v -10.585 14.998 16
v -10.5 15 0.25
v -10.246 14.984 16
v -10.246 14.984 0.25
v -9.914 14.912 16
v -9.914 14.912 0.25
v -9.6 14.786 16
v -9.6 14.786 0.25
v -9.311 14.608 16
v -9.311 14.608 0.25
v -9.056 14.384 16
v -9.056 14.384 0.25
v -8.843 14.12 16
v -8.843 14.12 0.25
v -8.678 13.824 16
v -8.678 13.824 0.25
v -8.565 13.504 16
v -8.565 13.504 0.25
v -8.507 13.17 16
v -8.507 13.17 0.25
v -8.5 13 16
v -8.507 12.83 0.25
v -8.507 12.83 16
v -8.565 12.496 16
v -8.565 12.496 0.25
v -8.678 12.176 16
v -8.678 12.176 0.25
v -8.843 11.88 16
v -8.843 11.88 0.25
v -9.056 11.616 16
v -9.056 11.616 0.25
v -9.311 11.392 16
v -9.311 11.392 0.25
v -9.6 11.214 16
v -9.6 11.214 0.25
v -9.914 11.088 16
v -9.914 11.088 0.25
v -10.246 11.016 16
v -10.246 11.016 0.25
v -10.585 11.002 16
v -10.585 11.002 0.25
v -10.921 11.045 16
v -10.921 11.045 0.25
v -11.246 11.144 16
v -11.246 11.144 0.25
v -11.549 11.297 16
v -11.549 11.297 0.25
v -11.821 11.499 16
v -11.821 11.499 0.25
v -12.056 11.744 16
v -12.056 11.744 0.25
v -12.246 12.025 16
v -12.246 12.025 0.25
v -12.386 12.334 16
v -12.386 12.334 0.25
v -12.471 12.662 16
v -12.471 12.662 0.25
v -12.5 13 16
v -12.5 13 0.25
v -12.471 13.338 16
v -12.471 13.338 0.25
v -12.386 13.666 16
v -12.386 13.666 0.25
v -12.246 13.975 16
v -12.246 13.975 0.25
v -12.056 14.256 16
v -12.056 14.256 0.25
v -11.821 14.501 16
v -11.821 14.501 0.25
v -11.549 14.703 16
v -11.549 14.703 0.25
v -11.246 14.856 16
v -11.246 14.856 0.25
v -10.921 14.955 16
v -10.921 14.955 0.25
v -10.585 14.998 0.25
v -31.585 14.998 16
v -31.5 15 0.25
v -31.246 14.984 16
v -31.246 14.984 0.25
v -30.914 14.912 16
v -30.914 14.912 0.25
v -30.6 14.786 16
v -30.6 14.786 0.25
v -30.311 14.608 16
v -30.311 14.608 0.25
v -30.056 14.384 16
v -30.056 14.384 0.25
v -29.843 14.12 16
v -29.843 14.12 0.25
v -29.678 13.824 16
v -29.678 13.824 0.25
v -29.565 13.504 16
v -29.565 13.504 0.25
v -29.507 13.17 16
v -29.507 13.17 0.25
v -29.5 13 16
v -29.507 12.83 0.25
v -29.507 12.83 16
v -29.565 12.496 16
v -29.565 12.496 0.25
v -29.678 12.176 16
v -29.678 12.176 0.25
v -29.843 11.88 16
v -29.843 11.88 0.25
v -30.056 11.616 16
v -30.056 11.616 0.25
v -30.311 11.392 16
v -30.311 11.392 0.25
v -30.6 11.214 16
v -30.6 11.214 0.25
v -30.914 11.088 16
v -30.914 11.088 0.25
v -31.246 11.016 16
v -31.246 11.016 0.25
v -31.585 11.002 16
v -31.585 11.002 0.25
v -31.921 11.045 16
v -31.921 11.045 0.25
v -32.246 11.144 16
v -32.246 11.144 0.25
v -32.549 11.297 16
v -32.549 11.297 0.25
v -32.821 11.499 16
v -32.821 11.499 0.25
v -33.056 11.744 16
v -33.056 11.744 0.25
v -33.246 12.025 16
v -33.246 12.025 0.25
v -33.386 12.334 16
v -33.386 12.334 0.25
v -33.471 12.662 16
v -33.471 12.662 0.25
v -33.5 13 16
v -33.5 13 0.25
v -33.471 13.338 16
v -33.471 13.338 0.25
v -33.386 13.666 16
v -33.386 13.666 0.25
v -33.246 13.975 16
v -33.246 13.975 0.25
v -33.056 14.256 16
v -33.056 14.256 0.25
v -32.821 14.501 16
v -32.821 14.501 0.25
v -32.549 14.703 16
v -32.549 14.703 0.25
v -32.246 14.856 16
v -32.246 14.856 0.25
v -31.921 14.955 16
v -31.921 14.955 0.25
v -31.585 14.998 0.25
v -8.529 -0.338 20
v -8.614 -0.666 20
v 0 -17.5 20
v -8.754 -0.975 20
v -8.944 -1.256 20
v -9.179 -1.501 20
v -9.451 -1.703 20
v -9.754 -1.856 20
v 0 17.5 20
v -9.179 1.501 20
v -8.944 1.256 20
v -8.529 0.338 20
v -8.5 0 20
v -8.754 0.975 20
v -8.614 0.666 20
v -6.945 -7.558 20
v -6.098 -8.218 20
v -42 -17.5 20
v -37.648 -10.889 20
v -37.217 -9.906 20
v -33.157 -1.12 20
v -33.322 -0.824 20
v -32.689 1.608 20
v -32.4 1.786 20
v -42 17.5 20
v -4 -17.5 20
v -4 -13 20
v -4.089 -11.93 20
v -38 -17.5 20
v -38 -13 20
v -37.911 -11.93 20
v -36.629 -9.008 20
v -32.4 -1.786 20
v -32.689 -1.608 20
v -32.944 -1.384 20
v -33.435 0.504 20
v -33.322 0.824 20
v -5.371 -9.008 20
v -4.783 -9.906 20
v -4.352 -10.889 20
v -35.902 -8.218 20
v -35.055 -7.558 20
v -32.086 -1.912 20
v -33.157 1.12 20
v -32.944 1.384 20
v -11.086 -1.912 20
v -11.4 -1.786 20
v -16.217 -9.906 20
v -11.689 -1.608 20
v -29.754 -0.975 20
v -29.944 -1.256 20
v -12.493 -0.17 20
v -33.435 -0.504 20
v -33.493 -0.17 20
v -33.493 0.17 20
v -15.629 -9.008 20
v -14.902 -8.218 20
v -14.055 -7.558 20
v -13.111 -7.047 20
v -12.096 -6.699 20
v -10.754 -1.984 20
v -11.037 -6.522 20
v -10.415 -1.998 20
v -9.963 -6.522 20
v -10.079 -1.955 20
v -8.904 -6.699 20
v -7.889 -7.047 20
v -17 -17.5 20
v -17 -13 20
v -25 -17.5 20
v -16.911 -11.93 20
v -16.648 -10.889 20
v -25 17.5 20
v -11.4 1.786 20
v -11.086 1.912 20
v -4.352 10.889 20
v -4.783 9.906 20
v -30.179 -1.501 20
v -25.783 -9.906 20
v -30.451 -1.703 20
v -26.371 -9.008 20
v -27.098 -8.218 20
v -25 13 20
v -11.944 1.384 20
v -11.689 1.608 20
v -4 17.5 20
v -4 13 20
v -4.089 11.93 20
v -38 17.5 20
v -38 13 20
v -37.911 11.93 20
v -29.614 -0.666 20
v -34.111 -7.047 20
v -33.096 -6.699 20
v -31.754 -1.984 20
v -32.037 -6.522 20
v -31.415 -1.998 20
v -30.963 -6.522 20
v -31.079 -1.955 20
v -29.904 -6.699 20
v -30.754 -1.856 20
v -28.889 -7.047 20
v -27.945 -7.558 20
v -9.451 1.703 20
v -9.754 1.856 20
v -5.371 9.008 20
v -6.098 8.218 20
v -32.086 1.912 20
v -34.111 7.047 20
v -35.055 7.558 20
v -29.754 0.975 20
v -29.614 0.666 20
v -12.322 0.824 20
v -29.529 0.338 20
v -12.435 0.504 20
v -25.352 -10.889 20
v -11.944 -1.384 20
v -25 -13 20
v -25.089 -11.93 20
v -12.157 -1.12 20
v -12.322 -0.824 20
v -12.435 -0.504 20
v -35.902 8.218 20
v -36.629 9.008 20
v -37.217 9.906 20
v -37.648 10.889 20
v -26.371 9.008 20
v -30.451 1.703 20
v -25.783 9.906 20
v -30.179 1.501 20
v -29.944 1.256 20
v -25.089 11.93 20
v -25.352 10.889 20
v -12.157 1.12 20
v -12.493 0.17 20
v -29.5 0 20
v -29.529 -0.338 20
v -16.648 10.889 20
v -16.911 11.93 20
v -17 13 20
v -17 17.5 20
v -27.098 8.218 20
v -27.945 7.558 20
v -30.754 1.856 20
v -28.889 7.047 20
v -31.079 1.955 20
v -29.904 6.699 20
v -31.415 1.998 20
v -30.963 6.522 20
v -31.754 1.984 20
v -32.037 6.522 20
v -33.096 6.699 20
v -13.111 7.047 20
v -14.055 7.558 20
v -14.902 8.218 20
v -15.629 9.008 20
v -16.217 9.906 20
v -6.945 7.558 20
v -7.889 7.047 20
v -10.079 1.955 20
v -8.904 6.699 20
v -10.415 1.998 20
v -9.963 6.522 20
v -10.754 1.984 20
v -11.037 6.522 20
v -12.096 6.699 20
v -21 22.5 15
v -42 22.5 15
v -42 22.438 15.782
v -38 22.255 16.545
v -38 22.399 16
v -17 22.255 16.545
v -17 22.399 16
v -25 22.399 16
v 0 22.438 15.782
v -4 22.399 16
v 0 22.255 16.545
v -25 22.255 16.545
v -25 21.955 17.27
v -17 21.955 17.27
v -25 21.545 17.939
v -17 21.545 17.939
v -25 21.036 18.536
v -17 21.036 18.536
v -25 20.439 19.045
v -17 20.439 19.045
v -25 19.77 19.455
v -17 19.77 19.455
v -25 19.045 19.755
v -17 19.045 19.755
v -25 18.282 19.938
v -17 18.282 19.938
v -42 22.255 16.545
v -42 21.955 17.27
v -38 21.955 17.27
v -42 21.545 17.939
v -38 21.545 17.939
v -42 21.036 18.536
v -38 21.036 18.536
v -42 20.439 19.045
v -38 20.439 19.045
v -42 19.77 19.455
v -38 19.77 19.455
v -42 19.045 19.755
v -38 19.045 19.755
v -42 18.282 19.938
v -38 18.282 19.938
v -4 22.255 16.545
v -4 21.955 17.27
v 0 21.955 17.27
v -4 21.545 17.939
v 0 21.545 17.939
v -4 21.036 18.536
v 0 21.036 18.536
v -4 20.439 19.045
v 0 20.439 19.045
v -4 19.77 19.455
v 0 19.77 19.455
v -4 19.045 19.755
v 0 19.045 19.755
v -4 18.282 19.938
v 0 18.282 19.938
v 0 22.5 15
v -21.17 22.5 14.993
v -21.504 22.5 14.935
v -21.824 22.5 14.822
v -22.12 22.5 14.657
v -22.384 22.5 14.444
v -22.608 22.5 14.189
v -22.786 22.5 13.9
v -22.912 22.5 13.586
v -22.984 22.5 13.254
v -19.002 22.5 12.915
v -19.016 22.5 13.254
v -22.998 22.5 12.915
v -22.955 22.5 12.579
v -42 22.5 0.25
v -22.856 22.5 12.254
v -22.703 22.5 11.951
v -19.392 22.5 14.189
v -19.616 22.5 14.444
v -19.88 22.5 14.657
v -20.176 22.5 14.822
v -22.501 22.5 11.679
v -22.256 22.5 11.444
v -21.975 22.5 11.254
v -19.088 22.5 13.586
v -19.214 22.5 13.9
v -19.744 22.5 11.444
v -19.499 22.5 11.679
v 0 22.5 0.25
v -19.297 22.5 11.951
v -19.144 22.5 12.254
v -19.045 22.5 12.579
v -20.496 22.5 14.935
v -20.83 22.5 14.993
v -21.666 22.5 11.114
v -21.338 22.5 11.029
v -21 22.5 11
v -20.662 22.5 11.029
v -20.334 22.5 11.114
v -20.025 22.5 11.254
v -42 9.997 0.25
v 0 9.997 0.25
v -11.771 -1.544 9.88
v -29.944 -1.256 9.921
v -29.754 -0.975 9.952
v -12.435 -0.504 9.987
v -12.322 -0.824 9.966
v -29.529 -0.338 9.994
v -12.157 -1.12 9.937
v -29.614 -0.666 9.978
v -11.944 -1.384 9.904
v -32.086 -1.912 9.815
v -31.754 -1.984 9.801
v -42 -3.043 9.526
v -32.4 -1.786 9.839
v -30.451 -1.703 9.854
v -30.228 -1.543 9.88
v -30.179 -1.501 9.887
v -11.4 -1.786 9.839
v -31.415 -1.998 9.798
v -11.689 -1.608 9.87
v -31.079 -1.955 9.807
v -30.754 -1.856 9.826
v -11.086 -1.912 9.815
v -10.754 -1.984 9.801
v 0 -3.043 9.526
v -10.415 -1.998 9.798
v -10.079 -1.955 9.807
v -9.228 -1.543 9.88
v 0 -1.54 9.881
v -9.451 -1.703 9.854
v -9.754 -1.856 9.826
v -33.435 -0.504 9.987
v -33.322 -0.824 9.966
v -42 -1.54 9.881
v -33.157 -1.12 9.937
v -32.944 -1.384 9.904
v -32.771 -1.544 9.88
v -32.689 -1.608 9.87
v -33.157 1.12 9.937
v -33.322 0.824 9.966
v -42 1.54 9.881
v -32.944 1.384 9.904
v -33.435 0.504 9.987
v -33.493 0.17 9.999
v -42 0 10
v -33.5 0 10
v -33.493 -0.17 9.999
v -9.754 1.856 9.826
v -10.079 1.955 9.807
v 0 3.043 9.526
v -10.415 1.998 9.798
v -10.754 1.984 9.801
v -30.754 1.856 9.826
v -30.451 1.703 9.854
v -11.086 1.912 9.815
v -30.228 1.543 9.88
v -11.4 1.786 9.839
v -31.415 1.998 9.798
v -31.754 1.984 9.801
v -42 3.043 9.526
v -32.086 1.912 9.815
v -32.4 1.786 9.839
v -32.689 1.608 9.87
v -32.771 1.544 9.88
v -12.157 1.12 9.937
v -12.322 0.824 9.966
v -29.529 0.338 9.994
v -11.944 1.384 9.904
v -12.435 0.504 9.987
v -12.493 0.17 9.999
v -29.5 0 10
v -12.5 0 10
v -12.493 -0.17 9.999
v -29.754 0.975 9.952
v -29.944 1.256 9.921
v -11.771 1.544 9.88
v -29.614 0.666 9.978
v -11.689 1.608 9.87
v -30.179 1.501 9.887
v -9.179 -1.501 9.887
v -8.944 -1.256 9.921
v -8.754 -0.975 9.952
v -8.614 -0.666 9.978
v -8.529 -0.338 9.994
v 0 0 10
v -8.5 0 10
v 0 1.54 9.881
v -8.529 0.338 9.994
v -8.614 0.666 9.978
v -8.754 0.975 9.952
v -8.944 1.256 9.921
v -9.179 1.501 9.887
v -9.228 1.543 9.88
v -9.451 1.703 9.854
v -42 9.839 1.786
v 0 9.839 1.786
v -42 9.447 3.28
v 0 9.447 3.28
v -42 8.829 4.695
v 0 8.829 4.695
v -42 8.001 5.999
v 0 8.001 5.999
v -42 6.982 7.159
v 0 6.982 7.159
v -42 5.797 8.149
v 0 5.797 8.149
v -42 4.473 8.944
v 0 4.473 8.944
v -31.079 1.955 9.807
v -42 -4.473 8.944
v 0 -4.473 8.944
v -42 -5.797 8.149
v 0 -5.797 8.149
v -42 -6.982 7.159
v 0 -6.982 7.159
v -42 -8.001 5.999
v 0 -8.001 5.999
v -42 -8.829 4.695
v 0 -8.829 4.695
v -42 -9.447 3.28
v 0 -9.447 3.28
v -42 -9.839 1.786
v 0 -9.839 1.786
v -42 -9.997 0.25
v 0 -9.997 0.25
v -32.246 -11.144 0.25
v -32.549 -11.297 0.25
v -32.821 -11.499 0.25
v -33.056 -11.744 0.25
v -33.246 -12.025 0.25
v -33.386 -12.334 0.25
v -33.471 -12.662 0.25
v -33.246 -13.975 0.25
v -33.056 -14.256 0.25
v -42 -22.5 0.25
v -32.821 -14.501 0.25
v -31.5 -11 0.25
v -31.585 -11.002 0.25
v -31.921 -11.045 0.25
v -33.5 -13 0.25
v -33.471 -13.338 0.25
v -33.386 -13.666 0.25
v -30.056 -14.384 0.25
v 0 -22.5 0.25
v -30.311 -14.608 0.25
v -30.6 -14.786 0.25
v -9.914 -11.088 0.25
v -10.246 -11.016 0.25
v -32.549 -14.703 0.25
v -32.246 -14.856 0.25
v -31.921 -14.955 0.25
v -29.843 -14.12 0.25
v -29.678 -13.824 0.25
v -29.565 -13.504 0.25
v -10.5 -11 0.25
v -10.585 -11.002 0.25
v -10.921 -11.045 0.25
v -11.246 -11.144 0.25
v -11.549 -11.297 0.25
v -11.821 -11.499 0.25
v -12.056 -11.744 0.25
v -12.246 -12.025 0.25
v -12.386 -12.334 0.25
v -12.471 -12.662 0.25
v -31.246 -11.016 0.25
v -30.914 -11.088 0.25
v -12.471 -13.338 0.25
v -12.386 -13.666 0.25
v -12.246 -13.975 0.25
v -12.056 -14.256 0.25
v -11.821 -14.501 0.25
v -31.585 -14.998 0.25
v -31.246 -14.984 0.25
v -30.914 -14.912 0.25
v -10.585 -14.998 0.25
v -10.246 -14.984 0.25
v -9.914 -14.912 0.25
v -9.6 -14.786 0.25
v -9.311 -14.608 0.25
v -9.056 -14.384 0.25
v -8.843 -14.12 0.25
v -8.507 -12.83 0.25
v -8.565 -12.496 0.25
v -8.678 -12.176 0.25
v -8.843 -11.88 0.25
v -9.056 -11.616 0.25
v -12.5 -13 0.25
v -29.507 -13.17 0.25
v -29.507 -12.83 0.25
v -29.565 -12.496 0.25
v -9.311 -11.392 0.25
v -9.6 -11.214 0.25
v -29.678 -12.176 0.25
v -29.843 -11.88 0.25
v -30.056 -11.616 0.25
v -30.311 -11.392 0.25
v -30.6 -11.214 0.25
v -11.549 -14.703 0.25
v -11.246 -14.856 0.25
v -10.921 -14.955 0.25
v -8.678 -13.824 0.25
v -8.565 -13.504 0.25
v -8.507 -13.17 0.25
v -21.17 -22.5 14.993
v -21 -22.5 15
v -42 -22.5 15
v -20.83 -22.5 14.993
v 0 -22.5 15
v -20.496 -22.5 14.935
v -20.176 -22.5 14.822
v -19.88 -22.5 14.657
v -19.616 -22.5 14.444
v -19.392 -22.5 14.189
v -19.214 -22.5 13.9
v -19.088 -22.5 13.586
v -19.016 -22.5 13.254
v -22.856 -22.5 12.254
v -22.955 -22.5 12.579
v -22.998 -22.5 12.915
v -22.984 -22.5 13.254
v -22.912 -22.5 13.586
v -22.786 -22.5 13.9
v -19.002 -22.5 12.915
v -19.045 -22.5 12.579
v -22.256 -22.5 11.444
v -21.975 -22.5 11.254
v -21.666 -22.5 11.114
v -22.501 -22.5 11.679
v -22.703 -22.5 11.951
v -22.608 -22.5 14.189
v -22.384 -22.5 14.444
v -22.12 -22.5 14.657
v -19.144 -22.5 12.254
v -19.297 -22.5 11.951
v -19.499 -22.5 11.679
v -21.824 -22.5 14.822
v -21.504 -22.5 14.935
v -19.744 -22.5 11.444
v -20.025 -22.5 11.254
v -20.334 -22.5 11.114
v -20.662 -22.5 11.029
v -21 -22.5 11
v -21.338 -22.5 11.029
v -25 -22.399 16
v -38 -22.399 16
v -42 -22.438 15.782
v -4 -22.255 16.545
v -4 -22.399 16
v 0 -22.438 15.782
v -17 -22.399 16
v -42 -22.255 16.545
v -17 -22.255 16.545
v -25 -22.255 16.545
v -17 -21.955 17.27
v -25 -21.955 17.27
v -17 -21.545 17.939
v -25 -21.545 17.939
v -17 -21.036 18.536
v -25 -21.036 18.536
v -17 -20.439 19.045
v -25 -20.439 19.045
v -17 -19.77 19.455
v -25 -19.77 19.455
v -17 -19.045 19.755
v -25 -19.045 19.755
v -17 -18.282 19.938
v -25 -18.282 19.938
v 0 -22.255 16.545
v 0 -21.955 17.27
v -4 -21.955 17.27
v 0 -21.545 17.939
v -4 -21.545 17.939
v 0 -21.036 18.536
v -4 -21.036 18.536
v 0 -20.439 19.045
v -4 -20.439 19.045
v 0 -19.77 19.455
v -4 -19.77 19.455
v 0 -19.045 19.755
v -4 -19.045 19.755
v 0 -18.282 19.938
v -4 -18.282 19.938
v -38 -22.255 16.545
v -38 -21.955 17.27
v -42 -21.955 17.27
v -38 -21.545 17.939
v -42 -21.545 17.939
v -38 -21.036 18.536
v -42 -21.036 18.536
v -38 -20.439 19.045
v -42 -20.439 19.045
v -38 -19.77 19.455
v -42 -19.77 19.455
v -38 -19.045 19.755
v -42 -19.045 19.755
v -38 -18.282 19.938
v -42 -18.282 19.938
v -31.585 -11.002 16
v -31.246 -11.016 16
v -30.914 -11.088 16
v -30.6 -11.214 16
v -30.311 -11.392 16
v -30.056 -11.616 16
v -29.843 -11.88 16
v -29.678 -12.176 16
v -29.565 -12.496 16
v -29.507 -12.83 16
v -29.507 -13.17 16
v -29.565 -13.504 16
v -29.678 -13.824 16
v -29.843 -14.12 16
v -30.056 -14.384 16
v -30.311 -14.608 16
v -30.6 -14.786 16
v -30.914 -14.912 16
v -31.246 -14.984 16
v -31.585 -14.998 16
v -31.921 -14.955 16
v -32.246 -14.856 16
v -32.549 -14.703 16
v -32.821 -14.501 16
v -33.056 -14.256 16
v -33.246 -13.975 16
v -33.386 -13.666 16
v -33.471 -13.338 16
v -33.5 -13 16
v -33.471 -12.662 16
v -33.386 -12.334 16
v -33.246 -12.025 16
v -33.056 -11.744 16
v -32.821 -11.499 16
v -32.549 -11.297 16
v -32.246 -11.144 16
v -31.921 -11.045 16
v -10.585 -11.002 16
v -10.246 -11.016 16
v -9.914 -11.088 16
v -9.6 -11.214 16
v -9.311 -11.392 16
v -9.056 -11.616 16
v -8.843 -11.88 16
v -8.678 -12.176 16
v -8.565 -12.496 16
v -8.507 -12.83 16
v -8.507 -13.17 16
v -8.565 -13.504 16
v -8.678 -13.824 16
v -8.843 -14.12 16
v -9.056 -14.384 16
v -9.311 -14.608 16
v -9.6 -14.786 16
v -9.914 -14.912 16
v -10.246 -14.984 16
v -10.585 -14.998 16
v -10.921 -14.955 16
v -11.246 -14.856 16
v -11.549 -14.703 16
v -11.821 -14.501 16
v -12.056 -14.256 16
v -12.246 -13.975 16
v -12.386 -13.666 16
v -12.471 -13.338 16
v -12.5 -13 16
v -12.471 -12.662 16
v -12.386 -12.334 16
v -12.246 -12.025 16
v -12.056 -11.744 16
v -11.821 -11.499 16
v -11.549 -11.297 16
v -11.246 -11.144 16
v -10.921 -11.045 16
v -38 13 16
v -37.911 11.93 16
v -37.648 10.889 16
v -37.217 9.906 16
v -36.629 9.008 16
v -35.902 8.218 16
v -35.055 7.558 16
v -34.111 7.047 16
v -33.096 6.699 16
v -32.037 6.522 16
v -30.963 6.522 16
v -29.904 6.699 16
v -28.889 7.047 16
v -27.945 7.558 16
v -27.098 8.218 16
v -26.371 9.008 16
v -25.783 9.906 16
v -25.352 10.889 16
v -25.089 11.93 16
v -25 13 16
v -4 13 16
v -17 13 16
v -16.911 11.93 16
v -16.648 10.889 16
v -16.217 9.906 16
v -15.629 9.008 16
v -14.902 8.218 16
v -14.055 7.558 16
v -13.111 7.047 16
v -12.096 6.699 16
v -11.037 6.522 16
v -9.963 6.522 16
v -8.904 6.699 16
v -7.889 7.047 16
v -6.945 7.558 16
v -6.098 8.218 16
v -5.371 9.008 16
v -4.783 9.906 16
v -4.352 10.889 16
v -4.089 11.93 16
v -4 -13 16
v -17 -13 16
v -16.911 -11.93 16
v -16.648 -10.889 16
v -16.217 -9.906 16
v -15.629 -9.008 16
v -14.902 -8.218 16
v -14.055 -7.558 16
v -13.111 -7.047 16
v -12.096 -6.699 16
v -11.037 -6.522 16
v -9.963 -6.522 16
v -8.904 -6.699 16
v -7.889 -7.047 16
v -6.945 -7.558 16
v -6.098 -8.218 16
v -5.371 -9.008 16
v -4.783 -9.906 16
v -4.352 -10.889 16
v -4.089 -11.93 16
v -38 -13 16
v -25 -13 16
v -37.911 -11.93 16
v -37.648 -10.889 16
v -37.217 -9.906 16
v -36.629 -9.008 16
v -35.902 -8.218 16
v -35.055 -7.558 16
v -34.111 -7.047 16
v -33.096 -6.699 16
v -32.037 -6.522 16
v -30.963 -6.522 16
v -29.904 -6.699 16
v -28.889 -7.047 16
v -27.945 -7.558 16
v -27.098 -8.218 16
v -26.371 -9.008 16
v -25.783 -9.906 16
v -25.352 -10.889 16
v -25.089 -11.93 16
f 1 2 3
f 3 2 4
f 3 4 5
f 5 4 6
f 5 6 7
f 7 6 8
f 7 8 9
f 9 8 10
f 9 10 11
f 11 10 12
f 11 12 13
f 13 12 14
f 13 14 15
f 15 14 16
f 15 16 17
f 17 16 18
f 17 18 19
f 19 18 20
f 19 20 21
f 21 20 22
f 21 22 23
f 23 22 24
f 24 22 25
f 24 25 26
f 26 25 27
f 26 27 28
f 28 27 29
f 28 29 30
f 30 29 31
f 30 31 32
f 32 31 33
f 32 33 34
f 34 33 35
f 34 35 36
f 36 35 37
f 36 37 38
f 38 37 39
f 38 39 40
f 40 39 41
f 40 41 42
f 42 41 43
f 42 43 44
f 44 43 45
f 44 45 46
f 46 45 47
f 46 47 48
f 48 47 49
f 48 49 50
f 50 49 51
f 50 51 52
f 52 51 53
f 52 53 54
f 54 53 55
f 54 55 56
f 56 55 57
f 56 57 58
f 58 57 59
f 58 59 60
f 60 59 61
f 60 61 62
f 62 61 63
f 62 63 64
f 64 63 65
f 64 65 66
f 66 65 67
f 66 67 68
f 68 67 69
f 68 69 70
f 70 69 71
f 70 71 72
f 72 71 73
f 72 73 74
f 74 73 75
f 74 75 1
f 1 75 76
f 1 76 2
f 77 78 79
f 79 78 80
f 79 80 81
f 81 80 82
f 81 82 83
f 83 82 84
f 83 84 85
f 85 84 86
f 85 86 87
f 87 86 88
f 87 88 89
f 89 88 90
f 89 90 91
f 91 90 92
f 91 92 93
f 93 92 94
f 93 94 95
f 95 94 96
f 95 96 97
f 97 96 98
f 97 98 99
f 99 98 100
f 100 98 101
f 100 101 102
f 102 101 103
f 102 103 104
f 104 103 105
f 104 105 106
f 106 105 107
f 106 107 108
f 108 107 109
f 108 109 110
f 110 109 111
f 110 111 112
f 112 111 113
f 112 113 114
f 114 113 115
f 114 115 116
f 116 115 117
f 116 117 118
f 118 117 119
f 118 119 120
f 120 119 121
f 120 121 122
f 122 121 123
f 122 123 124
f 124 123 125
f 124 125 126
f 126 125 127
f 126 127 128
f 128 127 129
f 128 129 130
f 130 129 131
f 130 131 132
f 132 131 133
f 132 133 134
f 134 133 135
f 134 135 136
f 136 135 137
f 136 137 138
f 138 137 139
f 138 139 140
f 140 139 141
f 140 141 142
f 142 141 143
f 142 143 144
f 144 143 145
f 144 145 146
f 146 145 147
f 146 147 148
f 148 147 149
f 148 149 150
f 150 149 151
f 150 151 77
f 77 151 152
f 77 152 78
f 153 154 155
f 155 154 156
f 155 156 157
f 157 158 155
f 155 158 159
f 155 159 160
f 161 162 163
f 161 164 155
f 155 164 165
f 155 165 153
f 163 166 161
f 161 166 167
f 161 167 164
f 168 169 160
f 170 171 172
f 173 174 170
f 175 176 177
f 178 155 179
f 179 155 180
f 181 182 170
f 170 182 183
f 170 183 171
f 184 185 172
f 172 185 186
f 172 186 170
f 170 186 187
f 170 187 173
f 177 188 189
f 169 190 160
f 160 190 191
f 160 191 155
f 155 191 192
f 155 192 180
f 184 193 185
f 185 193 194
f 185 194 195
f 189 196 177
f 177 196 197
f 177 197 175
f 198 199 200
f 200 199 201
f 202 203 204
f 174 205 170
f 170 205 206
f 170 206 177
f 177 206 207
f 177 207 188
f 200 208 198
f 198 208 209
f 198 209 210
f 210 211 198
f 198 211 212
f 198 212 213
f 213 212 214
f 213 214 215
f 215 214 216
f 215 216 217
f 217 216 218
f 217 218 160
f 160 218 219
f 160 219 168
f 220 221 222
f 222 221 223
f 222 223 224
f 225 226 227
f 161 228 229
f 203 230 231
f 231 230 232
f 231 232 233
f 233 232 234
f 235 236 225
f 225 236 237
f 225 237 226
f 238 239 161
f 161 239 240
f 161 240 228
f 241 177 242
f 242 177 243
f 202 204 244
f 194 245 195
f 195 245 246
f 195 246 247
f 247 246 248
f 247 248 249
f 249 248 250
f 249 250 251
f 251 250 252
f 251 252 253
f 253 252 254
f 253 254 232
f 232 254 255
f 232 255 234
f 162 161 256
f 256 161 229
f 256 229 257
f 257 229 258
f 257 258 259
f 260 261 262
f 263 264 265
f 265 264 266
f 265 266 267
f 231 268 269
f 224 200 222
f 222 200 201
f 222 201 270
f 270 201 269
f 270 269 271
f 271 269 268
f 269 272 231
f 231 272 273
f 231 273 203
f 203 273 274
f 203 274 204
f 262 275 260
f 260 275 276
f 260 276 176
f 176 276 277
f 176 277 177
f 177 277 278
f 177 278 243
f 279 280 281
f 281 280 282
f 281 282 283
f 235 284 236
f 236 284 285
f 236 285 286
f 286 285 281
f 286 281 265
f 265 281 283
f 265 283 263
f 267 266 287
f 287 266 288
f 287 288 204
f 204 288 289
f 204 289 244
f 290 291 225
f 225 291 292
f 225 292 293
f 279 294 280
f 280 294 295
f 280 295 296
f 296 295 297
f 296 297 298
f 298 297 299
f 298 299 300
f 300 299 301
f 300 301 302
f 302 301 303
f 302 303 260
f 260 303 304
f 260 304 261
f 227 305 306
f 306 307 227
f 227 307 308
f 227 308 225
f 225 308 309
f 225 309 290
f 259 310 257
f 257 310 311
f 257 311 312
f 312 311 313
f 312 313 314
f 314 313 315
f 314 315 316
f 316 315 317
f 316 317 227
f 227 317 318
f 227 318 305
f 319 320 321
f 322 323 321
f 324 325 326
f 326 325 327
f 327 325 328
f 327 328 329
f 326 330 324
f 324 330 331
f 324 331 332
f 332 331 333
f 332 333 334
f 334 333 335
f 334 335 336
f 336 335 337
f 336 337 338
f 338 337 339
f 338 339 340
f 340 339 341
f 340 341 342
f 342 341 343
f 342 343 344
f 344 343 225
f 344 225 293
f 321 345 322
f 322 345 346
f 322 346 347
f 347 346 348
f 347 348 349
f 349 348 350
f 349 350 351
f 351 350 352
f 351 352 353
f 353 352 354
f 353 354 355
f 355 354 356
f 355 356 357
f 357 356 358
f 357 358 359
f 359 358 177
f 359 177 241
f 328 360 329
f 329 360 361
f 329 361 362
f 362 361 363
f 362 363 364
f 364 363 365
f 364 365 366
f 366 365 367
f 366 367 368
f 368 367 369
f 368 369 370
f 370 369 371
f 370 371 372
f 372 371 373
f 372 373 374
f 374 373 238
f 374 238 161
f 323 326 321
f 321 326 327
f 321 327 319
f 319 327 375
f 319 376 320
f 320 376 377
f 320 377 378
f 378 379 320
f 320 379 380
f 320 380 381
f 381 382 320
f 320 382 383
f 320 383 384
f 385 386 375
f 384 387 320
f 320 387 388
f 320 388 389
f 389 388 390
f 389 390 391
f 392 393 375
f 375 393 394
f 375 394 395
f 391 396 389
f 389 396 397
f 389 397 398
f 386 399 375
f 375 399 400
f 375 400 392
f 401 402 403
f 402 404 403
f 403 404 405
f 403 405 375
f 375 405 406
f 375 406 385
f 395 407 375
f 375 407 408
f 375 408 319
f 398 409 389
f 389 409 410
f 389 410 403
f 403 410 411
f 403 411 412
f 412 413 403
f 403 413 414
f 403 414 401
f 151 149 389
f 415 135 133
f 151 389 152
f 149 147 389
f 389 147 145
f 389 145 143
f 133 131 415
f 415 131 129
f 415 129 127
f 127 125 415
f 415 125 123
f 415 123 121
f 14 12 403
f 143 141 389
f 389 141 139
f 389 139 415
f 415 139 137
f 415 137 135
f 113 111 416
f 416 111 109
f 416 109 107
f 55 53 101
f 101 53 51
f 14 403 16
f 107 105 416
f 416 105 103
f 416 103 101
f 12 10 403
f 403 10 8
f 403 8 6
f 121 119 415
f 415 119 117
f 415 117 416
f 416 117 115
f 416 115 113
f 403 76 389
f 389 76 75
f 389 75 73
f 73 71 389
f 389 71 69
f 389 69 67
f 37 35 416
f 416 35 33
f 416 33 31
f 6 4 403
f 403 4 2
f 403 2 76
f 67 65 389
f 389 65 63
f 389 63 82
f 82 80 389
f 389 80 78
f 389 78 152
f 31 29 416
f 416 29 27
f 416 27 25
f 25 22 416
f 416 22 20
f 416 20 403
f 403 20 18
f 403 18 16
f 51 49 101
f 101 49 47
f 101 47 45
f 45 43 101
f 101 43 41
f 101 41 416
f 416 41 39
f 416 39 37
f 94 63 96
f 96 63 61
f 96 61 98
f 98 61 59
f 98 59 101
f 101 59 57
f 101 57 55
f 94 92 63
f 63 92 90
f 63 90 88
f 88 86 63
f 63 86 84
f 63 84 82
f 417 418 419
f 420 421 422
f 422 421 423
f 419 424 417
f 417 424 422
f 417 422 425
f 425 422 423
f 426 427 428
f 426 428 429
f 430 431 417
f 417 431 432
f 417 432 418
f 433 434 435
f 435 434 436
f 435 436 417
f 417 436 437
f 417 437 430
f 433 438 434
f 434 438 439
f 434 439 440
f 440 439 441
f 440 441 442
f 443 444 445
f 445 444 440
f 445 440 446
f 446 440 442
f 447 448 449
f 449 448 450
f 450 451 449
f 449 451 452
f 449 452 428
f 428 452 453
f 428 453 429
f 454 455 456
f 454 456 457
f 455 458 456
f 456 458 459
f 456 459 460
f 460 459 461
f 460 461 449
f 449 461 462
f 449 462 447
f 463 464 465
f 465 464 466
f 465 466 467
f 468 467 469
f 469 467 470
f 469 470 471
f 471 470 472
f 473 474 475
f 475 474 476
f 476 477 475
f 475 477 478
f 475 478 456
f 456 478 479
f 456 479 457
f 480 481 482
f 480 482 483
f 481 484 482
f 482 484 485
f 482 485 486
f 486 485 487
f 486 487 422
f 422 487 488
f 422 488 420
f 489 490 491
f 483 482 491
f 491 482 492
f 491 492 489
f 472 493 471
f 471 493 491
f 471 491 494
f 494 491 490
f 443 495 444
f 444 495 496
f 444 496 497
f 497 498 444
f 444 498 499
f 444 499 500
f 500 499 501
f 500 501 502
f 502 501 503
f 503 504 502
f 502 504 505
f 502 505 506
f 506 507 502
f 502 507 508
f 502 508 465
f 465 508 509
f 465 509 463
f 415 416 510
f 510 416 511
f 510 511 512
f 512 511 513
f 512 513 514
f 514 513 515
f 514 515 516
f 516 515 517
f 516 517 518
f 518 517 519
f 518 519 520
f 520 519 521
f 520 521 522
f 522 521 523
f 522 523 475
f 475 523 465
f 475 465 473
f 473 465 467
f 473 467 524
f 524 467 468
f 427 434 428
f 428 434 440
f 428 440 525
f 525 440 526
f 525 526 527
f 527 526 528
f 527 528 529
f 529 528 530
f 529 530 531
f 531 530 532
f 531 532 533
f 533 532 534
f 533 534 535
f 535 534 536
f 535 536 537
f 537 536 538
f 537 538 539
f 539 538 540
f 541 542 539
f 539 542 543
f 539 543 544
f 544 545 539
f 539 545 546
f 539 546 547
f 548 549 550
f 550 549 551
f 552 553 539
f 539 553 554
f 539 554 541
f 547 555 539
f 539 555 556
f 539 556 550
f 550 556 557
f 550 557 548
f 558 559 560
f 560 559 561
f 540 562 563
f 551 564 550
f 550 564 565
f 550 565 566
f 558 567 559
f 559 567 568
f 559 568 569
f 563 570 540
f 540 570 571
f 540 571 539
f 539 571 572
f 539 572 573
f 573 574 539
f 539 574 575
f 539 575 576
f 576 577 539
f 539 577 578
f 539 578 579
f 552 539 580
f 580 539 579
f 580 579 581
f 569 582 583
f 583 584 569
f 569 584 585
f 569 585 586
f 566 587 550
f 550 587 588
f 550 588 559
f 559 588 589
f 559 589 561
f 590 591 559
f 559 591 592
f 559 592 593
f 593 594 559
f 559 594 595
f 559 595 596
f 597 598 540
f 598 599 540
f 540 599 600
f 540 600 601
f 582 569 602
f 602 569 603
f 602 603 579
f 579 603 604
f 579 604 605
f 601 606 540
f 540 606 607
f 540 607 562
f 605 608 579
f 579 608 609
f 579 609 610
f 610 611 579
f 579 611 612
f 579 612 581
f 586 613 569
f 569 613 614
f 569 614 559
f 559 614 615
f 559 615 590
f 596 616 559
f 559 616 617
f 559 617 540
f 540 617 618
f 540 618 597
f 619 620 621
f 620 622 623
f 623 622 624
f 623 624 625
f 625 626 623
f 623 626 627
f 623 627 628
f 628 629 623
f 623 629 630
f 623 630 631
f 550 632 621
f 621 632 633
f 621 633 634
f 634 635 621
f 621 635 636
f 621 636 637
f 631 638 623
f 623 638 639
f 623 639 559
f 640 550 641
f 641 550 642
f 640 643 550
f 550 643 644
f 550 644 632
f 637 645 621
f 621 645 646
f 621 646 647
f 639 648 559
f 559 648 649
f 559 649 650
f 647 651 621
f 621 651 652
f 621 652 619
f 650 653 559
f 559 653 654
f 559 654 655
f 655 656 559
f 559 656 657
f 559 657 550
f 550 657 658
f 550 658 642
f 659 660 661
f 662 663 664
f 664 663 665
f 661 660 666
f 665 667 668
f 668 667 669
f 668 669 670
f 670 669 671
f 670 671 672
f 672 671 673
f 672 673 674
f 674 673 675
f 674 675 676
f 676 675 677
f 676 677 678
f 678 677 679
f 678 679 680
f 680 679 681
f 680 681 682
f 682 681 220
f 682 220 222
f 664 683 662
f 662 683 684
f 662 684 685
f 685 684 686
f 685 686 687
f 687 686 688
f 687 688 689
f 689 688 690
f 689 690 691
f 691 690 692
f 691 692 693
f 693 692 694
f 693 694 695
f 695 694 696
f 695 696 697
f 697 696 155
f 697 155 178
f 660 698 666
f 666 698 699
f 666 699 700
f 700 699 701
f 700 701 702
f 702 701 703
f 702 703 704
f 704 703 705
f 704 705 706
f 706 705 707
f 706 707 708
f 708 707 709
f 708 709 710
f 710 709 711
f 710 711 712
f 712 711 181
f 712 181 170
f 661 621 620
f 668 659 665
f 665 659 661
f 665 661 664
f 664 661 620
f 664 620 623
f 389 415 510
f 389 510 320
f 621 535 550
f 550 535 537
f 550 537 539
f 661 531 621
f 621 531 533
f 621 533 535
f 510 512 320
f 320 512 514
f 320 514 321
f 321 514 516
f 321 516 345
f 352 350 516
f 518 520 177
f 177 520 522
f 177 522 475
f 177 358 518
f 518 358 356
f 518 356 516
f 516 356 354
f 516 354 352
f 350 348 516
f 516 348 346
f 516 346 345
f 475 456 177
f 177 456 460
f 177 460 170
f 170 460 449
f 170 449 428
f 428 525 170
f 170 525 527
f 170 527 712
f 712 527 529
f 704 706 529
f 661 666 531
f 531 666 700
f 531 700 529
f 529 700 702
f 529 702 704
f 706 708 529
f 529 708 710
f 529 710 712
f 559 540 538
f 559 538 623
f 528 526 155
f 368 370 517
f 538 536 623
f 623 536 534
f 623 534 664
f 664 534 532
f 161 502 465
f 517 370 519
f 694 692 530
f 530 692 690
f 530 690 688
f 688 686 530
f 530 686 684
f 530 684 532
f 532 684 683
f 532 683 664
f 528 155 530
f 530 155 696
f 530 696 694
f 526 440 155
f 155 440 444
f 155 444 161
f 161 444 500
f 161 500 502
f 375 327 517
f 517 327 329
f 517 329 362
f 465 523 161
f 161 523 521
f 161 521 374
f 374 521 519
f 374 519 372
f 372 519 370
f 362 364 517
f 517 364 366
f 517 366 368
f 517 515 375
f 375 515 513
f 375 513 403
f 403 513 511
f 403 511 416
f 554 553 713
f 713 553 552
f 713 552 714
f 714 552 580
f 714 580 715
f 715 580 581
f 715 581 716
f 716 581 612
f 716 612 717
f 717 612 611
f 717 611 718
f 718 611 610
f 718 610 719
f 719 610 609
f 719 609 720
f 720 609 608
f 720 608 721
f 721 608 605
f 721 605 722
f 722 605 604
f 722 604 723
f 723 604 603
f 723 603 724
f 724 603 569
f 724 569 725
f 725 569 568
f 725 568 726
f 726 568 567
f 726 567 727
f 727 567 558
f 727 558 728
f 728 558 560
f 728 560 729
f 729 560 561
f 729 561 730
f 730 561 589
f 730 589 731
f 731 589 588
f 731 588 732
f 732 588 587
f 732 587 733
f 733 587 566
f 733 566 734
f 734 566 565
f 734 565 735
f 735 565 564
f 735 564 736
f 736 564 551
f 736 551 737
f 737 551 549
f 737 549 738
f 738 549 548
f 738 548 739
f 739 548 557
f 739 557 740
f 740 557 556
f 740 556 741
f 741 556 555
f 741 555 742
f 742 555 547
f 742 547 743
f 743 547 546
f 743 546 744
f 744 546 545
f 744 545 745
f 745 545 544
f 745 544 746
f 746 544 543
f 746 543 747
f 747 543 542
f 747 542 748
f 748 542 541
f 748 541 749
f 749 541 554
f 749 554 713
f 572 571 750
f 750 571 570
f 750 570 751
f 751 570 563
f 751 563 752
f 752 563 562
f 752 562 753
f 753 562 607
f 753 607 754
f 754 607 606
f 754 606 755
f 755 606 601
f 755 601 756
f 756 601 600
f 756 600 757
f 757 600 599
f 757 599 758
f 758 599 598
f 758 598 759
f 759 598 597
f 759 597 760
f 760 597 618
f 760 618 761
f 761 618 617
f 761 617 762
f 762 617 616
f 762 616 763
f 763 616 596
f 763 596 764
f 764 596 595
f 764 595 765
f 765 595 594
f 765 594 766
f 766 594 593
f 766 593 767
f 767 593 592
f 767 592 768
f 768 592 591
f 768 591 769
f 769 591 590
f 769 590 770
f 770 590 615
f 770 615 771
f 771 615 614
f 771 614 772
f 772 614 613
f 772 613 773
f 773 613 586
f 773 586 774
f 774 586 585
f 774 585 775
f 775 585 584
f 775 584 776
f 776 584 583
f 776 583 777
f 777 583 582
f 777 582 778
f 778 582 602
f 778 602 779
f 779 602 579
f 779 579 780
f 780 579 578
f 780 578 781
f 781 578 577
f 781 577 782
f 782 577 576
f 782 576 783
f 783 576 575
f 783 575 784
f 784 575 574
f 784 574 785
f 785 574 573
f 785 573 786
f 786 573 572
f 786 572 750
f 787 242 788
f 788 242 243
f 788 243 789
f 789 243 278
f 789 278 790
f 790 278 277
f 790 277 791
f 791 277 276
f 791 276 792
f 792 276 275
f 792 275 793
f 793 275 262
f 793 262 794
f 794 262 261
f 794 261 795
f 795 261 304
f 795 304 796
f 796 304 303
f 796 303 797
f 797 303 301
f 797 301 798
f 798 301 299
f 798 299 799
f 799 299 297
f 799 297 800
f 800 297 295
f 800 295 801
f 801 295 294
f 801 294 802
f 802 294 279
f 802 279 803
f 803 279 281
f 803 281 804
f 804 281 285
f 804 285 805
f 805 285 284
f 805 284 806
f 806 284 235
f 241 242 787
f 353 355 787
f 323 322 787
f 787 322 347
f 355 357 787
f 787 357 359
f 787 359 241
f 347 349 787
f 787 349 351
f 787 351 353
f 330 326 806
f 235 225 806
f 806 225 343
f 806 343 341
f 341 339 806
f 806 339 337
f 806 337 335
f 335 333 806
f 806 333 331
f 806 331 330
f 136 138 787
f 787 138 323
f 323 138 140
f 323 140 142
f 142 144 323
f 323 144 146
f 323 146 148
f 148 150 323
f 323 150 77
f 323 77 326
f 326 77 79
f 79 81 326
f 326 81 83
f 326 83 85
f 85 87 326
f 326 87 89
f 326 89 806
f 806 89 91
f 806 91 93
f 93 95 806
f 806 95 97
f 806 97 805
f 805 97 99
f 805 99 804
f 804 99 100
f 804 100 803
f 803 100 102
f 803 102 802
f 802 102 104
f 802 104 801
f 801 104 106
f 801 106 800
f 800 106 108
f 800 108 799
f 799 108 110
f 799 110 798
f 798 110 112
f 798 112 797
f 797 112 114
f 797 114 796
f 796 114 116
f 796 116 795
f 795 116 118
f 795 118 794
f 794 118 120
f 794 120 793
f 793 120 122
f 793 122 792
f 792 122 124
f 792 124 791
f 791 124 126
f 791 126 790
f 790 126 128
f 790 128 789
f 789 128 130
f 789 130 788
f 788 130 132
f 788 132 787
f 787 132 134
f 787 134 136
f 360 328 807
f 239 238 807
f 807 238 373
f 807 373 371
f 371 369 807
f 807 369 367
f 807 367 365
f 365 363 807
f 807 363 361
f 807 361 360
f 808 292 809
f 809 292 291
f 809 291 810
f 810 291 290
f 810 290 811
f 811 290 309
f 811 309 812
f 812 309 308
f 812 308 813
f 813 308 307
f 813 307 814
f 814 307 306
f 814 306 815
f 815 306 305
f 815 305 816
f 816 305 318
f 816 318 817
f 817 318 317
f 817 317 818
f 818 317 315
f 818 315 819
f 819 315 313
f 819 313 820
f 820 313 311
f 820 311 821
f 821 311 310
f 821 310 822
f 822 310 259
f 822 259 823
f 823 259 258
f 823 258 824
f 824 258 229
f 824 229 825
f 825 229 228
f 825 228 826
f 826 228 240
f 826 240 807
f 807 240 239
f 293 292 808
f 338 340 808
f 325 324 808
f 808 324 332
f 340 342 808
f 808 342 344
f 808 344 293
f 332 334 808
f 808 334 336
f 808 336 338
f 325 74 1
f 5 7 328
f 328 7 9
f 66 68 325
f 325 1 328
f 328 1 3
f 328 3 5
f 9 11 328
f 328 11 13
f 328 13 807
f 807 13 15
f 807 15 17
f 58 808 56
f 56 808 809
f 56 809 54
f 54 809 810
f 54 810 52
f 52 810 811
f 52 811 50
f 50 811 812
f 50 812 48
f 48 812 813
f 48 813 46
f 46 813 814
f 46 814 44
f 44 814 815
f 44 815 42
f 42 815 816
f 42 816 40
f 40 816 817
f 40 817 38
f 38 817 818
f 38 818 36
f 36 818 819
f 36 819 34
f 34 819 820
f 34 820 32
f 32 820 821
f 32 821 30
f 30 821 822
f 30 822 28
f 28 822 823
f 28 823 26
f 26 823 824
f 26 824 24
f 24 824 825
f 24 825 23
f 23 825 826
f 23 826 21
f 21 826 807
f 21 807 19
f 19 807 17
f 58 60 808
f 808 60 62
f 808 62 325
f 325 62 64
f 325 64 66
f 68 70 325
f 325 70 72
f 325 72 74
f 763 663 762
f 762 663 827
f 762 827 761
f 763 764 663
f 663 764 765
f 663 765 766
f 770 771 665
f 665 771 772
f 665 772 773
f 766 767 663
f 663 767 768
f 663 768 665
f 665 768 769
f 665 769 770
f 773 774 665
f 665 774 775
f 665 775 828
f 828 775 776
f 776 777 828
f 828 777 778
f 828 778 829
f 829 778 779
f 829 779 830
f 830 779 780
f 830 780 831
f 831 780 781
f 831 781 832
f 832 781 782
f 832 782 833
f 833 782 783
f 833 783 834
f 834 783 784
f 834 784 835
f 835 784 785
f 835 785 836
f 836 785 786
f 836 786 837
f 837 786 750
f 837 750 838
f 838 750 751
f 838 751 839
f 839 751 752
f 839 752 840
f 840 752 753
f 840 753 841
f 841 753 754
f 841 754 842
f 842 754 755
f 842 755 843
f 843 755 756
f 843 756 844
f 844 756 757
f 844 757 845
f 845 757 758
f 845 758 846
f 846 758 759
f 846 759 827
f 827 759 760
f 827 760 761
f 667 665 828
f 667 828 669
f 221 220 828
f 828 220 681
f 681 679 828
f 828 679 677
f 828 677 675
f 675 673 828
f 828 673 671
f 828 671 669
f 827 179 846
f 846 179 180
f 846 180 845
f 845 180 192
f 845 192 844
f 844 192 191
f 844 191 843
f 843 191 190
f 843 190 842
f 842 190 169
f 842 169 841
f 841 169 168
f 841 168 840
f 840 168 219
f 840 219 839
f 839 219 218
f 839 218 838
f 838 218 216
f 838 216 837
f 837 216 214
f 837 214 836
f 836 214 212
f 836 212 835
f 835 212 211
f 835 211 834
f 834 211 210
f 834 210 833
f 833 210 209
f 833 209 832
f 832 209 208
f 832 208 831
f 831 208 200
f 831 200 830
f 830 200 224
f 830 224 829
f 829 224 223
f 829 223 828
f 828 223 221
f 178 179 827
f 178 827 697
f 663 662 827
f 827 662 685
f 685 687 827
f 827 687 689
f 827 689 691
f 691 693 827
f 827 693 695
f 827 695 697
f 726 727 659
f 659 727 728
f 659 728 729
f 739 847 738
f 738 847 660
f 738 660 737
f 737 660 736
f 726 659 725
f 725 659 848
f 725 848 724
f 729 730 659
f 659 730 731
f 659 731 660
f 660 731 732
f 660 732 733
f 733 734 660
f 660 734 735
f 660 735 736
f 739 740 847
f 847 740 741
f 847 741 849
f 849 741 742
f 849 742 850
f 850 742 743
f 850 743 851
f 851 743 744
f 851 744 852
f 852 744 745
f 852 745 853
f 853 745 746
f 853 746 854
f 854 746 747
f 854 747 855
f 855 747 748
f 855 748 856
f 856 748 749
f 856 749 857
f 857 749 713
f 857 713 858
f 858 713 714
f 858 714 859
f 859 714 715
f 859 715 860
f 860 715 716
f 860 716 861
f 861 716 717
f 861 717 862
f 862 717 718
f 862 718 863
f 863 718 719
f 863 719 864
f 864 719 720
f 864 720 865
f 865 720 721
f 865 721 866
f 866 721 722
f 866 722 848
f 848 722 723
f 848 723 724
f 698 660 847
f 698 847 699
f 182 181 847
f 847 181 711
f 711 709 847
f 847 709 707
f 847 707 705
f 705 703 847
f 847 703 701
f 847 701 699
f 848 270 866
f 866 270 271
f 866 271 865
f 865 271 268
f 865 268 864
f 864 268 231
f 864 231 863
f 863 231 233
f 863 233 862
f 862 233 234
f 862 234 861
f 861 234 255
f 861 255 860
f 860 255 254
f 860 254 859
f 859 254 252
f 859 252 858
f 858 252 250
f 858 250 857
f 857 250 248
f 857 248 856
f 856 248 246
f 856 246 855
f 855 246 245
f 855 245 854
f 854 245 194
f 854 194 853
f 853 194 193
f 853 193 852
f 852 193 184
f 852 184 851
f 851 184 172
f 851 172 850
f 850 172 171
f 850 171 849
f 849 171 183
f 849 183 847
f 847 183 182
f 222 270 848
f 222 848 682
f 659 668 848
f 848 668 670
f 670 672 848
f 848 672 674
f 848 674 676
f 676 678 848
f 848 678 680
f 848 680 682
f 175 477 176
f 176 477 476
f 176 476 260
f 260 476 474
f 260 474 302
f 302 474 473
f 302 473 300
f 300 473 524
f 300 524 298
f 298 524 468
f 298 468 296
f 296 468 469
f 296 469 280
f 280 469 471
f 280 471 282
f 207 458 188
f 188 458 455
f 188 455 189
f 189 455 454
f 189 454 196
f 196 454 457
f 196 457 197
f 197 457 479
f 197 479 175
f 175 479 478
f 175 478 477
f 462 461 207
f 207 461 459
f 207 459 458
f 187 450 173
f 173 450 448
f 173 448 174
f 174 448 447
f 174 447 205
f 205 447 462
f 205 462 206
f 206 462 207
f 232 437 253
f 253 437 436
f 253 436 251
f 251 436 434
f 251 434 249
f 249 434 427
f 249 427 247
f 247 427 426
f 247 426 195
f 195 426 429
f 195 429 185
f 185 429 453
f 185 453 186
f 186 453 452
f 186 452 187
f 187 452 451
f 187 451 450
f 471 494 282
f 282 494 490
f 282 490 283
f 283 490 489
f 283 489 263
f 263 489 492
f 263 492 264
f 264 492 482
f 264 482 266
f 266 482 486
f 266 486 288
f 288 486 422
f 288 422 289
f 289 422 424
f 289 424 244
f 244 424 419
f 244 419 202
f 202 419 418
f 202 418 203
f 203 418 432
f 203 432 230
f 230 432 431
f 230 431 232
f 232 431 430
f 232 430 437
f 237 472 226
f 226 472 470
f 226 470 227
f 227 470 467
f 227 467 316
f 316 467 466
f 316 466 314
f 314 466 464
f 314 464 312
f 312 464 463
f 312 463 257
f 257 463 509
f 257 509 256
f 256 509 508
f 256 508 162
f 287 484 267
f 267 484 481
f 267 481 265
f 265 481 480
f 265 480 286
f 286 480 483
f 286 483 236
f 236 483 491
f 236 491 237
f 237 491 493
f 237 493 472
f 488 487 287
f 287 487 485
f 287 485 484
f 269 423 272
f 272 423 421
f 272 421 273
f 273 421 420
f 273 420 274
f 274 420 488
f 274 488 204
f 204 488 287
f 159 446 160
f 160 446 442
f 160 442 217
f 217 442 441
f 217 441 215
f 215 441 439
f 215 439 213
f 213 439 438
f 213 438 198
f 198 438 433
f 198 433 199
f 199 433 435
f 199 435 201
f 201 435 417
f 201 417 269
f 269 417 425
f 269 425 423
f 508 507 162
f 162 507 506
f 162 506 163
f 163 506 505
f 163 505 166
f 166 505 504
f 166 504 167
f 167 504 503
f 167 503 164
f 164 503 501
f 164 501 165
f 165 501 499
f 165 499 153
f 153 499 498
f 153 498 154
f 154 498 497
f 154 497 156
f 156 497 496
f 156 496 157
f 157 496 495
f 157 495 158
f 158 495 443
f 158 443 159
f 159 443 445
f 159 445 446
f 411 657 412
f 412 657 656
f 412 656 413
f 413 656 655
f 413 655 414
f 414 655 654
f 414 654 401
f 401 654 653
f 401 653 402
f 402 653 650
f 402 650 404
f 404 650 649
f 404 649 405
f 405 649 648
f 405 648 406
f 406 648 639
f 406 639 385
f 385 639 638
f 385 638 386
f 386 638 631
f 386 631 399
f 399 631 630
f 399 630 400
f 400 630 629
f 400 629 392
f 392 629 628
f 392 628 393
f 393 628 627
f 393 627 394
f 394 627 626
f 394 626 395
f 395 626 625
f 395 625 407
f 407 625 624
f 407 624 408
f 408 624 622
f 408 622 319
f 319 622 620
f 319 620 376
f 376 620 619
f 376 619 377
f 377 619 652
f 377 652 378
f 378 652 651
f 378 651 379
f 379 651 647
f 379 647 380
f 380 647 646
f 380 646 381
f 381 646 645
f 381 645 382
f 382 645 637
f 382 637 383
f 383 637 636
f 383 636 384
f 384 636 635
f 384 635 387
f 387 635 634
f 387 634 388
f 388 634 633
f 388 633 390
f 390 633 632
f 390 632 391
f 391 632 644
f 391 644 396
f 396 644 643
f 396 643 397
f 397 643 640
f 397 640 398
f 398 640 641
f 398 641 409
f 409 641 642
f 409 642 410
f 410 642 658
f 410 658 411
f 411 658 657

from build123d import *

# Parameters (mm, degrees)
BOSS_EXTRUDE1_DEPTH = 42
SKETCH2_R           = 2
CUT_EXTRUDE2_DEPTH  = 52.578217301
CUT_EXTRUDE3_DEPTH  = 4
SKETCH4_R           = 2
CUT_EXTRUDE4_DEPTH  = 52.578217301
SKETCH5_R           = 2
CUT_EXTRUDE5_DEPTH  = 65.722484597


with BuildPart() as part:
    # Sketch1 → Boss-Extrude1 (new body)
    with BuildSketch(Plane(origin=(0, 0, 0), x_dir=(0, 0, -1), z_dir=(1, 0, 0))):
        with BuildLine():
            Line((-0.25, 9.996874512), (-0.25, 22.5))
            Line((-0.25, 22.5), (-15, 22.5))
            ThreePointArc((-15, 22.5), (-18.535533906, 21.035533906), (-20, 17.5))
            Line((-20, 17.5), (-20, -17.5))
            ThreePointArc((-20, -17.5), (-18.535533906, -21.035533906), (-15, -22.5))
            Line((-15, -22.5), (-0.25, -22.5))
            Line((-0.25, -22.5), (-0.25, -9.996874512))
            ThreePointArc((-0.25, -9.996874512), (-10, 0), (-0.25, 9.996874512))
        make_face()
    extrude(amount=-BOSS_EXTRUDE1_DEPTH)

    # Sketch2 → Cut-Extrude2 (cut, through all)
    with BuildSketch(Plane.XY.offset(0.25)):
        with Locations(Location((-10.5, 13, 0), (0, 0, 90))):
            Circle(SKETCH2_R)
        with Locations(Location((-31.5, 13, 0), (0, 0, 90))):
            Circle(SKETCH2_R)
        with Locations(Location((-31.5, -13, 0), (0, 0, 90))):
            Circle(SKETCH2_R)
        with Locations(Location((-10.5, -13, 0), (0, 0, 90))):
            Circle(SKETCH2_R)
    extrude(amount=CUT_EXTRUDE2_DEPTH, mode=Mode.SUBTRACT)

    # Sketch3 → Cut-Extrude3 (cut)
    with BuildSketch(Plane.XY.offset(20)):
        with BuildLine():
            Line((-38, 13), (-38, 22.5))
            Line((-38, 22.5), (-25, 22.5))
            Line((-25, 22.5), (-25, 13))
            ThreePointArc((-25, 13), (-31.5, 6.5), (-38, 13))
        make_face()
        with BuildLine():
            Line((-17, 13), (-17, 22.5))
            Line((-17, 22.5), (-4, 22.5))
            Line((-4, 22.5), (-4, 13))
            ThreePointArc((-4, 13), (-10.5, 6.5), (-17, 13))
        make_face()
        with BuildLine():
            Line((-4, -22.5), (-4, -13))
            ThreePointArc((-4, -13), (-10.5, -6.5), (-17, -13))
            Line((-17, -13), (-17, -22.5))
            Line((-17, -22.5), (-4, -22.5))
        make_face()
        with BuildLine():
            Line((-25, -22.5), (-25, -13))
            ThreePointArc((-25, -13), (-31.5, -6.5), (-38, -13))
            Line((-38, -13), (-38, -22.5))
            Line((-38, -22.5), (-25, -22.5))
        make_face()
    extrude(amount=-CUT_EXTRUDE3_DEPTH, mode=Mode.SUBTRACT)

    # Sketch4 → Cut-Extrude4 (cut, through all)
    with BuildSketch(Plane.XY.offset(20)):
        with Locations((-10.5, 0)):
            Circle(SKETCH4_R)
        with Locations((-31.5, 0)):
            Circle(SKETCH4_R)
    extrude(amount=-CUT_EXTRUDE4_DEPTH, mode=Mode.SUBTRACT)

    # Sketch5 → Cut-Extrude5 (cut, through all)
    with BuildSketch(Plane.XZ.offset(22.5)):
        with Locations(Location((-21, 13, 0), (0, 0, 90))):
            Circle(SKETCH5_R)
    extrude(amount=-CUT_EXTRUDE5_DEPTH, mode=Mode.SUBTRACT)


solid = part.part
